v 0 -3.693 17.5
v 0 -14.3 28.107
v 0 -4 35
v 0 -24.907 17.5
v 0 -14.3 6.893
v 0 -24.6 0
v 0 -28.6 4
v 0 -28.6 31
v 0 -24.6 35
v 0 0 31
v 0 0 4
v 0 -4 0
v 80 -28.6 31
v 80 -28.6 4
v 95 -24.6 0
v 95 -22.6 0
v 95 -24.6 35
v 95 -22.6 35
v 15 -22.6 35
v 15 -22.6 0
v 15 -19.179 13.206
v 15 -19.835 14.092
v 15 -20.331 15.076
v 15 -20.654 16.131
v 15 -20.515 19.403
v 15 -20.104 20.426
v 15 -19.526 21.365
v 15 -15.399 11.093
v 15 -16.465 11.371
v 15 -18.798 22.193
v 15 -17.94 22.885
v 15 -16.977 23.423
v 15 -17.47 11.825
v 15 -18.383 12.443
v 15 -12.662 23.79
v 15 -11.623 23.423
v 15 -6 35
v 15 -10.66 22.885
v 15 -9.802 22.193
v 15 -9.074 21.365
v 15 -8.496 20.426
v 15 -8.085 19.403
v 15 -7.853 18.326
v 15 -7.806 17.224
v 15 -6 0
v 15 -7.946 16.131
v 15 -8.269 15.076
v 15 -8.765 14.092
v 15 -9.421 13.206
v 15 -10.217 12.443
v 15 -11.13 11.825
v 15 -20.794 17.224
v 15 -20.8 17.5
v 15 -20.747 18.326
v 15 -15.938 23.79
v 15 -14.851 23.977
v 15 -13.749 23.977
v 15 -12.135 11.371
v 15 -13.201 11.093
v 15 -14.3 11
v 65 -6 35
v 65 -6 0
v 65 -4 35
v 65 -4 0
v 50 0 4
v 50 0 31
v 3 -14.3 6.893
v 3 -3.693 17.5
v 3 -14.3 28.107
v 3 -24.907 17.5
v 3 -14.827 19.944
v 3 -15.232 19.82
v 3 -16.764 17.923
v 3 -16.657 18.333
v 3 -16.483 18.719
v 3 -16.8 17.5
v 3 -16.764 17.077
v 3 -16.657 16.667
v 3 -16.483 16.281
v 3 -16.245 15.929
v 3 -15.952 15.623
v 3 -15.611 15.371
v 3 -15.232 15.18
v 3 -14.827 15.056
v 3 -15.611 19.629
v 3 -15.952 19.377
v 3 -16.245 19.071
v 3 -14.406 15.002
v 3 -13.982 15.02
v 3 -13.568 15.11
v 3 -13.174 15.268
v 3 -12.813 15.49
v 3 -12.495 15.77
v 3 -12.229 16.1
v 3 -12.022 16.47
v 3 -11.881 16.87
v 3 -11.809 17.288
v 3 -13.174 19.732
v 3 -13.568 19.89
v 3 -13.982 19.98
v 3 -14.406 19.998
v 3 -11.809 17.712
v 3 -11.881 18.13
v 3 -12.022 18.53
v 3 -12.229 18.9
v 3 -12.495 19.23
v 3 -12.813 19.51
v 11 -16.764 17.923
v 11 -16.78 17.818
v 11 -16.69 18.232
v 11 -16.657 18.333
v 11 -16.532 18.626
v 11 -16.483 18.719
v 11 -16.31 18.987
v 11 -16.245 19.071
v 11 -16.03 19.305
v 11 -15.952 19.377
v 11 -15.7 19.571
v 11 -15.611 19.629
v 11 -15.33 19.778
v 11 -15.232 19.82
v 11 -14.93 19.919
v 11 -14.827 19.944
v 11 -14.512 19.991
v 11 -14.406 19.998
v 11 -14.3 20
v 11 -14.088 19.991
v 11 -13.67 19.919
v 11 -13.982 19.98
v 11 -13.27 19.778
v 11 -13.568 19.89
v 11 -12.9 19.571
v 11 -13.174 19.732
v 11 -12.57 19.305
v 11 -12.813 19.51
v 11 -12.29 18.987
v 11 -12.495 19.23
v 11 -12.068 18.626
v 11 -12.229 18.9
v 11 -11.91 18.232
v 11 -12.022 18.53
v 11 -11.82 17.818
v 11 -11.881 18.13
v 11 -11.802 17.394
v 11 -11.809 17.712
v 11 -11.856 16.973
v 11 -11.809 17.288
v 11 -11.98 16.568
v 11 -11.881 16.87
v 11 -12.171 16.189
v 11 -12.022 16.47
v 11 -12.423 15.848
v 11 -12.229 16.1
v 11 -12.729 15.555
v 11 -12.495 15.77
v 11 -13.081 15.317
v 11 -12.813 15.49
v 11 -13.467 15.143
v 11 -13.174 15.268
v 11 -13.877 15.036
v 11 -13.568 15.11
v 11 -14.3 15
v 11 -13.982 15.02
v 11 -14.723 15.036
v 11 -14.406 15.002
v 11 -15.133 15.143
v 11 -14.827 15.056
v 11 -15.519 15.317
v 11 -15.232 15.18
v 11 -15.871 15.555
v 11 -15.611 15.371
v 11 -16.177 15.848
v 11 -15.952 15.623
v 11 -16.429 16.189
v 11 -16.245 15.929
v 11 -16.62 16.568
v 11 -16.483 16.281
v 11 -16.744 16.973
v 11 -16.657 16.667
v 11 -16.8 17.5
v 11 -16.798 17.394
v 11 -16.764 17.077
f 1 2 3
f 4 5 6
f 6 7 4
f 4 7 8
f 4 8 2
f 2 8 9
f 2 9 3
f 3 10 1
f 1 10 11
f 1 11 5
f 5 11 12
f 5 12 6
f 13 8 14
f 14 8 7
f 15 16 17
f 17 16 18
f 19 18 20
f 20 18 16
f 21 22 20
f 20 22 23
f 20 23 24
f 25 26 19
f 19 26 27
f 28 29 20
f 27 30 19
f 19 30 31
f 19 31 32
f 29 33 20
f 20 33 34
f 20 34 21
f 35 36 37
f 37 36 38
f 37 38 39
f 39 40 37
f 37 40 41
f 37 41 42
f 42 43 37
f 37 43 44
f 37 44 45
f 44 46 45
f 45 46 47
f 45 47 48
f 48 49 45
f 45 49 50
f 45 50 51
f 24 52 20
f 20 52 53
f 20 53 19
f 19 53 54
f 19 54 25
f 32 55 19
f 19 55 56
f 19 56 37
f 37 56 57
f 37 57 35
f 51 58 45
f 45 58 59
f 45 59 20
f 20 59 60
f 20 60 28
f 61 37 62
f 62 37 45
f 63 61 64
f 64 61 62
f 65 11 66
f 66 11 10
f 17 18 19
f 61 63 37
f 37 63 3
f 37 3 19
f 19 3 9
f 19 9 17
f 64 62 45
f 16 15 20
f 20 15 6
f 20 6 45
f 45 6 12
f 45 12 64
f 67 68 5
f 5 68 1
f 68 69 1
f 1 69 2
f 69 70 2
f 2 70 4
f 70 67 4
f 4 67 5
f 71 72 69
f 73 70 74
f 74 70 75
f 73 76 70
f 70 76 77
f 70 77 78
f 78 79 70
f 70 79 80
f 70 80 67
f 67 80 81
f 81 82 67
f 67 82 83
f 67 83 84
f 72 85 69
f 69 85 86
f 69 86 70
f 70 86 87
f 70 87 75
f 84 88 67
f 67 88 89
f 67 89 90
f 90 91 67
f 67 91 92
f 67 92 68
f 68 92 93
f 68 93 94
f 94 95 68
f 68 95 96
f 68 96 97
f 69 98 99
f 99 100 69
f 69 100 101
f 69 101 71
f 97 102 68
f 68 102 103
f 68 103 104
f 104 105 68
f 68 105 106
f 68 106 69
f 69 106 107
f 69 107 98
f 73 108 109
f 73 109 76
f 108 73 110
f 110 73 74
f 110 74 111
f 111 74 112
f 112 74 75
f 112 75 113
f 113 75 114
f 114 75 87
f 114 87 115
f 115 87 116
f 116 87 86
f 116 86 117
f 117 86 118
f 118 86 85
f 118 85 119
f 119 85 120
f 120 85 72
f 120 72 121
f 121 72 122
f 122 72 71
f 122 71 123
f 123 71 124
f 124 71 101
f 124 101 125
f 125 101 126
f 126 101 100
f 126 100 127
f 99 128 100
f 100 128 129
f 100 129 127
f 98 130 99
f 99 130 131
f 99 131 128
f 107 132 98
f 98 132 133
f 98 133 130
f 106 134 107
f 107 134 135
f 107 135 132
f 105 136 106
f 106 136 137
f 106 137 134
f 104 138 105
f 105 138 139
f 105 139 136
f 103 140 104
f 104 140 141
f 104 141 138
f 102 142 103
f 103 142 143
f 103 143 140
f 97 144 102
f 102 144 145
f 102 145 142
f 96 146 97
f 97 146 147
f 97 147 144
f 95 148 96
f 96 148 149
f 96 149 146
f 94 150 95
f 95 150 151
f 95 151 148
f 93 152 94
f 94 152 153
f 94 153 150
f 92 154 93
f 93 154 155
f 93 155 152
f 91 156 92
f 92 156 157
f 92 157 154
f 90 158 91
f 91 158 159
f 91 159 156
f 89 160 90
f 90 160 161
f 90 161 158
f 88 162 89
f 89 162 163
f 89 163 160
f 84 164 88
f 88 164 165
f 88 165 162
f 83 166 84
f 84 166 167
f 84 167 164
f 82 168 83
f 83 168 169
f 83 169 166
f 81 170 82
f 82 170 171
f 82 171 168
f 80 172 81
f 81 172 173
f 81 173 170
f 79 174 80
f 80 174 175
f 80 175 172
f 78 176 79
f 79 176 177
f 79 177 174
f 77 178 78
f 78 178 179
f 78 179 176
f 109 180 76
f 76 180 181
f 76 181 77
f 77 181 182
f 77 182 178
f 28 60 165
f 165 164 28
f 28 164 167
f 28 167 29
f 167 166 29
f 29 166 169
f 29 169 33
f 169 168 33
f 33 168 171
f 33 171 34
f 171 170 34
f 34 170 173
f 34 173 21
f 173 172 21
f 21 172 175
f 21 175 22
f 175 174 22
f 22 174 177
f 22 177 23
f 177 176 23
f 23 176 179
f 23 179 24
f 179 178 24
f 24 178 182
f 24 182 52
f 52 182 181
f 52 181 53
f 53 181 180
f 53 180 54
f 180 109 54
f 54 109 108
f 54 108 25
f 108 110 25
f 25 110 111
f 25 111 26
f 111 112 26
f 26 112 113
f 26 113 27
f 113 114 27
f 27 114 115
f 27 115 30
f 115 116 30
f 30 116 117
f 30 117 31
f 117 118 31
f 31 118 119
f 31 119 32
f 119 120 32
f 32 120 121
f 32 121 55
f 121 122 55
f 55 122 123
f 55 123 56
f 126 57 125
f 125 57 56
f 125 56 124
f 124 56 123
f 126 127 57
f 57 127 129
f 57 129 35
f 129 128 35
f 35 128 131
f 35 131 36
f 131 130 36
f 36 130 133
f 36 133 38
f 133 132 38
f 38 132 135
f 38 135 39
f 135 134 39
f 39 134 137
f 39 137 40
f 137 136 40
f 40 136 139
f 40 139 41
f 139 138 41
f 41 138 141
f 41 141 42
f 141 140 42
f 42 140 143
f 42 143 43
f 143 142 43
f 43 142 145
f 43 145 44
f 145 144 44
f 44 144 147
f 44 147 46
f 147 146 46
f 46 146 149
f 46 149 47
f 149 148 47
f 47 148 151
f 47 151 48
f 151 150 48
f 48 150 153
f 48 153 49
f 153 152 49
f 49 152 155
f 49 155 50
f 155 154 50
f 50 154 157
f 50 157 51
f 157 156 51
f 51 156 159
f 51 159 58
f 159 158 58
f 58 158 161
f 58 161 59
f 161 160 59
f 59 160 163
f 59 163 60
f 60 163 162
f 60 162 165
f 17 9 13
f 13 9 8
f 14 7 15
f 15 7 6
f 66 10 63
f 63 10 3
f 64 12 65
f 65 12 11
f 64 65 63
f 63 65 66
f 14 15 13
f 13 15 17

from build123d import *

# Parameters (mm, degrees)
EXTRUDE_1_DEPTH     = 35
CUT_EXTRUDE_2_DEPTH = 3
SKETCH_4_R          = 2.5
CUT_EXTRUDE_3_DEPTH = 15
CHAMFER_2_SIZE      = 4
CHAMFER_3_SIZE      = 4
CHAMFER_4_SIZE      = 4
CHAMFER_4_SIZE2     = 15
CHAMFER_5_SIZE      = 15
CHAMFER_5_SIZE2     = 4


with BuildPart() as part:
    # Эскиз2 → Бобышка-Вытянуть1 (new body)
    with BuildSketch(Plane.XY):
        Polygon((0, 0), (65, 0), (65, -6), (15, -6), (15, -22.6), (95, -22.6), (95, -28.6), (0, -28.6), align=None)
    extrude(amount=EXTRUDE_1_DEPTH)

    # Эскиз3 → Вырез-Вытянуть2 (cut)
    with BuildSketch(Plane.ZY):
        Polygon((6.893398282, -14.3), (17.5, -24.906601718), (28.106601718, -14.3), (17.5, -3.693398282), align=None)
    extrude(amount=-CUT_EXTRUDE_2_DEPTH, mode=Mode.SUBTRACT)

    # Эскиз4 → Вырез-Вытянуть3 (cut)
    with BuildSketch(Plane.ZY):
        with Locations(Location((17.5, -14.3, 0), (0, 0, 270))):
            Circle(SKETCH_4_R)
    extrude(amount=-CUT_EXTRUDE_3_DEPTH, mode=Mode.SUBTRACT)

    # Фаска2
    chamfer_2_edges = [part.edges().sort_by_distance(p)[0] for p in [
        (15, -11.8, 17.5),
    ]]
    chamfer(chamfer_2_edges, length=CHAMFER_2_SIZE)

    # Фаска3
    chamfer_3_edges = [part.edges().sort_by_distance(p)[0] for p in [
        (47.5, -28.6, 0),
        (32.5, 0, 35),
        (32.5, 0, 0),
        (47.5, -28.6, 35),
    ]]
    chamfer(chamfer_3_edges, length=CHAMFER_3_SIZE)

    # Фаска4
    chamfer_4_edges = [part.edges().sort_by_distance(p)[0] for p in [
        (65, 0, 17.5),
    ]]
    chamfer_4_side = [part.faces().sort_by_distance(p)[0] for p in [
        (65, -3.137457045, 17.5),
    ]]
    chamfer(chamfer_4_edges, length=CHAMFER_4_SIZE, length2=CHAMFER_4_SIZE2, reference=chamfer_4_side[0])

    # Фаска5
    chamfer_5_edges = [part.edges().sort_by_distance(p)[0] for p in [
        (95, -28.6, 17.5),
    ]]
    chamfer_5_side = [part.faces().sort_by_distance(p)[0] for p in [
        (47.5, -28.6, 17.5),
    ]]
    chamfer(chamfer_5_edges, length=CHAMFER_5_SIZE, length2=CHAMFER_5_SIZE2, reference=chamfer_5_side[0])


solid = part.part
